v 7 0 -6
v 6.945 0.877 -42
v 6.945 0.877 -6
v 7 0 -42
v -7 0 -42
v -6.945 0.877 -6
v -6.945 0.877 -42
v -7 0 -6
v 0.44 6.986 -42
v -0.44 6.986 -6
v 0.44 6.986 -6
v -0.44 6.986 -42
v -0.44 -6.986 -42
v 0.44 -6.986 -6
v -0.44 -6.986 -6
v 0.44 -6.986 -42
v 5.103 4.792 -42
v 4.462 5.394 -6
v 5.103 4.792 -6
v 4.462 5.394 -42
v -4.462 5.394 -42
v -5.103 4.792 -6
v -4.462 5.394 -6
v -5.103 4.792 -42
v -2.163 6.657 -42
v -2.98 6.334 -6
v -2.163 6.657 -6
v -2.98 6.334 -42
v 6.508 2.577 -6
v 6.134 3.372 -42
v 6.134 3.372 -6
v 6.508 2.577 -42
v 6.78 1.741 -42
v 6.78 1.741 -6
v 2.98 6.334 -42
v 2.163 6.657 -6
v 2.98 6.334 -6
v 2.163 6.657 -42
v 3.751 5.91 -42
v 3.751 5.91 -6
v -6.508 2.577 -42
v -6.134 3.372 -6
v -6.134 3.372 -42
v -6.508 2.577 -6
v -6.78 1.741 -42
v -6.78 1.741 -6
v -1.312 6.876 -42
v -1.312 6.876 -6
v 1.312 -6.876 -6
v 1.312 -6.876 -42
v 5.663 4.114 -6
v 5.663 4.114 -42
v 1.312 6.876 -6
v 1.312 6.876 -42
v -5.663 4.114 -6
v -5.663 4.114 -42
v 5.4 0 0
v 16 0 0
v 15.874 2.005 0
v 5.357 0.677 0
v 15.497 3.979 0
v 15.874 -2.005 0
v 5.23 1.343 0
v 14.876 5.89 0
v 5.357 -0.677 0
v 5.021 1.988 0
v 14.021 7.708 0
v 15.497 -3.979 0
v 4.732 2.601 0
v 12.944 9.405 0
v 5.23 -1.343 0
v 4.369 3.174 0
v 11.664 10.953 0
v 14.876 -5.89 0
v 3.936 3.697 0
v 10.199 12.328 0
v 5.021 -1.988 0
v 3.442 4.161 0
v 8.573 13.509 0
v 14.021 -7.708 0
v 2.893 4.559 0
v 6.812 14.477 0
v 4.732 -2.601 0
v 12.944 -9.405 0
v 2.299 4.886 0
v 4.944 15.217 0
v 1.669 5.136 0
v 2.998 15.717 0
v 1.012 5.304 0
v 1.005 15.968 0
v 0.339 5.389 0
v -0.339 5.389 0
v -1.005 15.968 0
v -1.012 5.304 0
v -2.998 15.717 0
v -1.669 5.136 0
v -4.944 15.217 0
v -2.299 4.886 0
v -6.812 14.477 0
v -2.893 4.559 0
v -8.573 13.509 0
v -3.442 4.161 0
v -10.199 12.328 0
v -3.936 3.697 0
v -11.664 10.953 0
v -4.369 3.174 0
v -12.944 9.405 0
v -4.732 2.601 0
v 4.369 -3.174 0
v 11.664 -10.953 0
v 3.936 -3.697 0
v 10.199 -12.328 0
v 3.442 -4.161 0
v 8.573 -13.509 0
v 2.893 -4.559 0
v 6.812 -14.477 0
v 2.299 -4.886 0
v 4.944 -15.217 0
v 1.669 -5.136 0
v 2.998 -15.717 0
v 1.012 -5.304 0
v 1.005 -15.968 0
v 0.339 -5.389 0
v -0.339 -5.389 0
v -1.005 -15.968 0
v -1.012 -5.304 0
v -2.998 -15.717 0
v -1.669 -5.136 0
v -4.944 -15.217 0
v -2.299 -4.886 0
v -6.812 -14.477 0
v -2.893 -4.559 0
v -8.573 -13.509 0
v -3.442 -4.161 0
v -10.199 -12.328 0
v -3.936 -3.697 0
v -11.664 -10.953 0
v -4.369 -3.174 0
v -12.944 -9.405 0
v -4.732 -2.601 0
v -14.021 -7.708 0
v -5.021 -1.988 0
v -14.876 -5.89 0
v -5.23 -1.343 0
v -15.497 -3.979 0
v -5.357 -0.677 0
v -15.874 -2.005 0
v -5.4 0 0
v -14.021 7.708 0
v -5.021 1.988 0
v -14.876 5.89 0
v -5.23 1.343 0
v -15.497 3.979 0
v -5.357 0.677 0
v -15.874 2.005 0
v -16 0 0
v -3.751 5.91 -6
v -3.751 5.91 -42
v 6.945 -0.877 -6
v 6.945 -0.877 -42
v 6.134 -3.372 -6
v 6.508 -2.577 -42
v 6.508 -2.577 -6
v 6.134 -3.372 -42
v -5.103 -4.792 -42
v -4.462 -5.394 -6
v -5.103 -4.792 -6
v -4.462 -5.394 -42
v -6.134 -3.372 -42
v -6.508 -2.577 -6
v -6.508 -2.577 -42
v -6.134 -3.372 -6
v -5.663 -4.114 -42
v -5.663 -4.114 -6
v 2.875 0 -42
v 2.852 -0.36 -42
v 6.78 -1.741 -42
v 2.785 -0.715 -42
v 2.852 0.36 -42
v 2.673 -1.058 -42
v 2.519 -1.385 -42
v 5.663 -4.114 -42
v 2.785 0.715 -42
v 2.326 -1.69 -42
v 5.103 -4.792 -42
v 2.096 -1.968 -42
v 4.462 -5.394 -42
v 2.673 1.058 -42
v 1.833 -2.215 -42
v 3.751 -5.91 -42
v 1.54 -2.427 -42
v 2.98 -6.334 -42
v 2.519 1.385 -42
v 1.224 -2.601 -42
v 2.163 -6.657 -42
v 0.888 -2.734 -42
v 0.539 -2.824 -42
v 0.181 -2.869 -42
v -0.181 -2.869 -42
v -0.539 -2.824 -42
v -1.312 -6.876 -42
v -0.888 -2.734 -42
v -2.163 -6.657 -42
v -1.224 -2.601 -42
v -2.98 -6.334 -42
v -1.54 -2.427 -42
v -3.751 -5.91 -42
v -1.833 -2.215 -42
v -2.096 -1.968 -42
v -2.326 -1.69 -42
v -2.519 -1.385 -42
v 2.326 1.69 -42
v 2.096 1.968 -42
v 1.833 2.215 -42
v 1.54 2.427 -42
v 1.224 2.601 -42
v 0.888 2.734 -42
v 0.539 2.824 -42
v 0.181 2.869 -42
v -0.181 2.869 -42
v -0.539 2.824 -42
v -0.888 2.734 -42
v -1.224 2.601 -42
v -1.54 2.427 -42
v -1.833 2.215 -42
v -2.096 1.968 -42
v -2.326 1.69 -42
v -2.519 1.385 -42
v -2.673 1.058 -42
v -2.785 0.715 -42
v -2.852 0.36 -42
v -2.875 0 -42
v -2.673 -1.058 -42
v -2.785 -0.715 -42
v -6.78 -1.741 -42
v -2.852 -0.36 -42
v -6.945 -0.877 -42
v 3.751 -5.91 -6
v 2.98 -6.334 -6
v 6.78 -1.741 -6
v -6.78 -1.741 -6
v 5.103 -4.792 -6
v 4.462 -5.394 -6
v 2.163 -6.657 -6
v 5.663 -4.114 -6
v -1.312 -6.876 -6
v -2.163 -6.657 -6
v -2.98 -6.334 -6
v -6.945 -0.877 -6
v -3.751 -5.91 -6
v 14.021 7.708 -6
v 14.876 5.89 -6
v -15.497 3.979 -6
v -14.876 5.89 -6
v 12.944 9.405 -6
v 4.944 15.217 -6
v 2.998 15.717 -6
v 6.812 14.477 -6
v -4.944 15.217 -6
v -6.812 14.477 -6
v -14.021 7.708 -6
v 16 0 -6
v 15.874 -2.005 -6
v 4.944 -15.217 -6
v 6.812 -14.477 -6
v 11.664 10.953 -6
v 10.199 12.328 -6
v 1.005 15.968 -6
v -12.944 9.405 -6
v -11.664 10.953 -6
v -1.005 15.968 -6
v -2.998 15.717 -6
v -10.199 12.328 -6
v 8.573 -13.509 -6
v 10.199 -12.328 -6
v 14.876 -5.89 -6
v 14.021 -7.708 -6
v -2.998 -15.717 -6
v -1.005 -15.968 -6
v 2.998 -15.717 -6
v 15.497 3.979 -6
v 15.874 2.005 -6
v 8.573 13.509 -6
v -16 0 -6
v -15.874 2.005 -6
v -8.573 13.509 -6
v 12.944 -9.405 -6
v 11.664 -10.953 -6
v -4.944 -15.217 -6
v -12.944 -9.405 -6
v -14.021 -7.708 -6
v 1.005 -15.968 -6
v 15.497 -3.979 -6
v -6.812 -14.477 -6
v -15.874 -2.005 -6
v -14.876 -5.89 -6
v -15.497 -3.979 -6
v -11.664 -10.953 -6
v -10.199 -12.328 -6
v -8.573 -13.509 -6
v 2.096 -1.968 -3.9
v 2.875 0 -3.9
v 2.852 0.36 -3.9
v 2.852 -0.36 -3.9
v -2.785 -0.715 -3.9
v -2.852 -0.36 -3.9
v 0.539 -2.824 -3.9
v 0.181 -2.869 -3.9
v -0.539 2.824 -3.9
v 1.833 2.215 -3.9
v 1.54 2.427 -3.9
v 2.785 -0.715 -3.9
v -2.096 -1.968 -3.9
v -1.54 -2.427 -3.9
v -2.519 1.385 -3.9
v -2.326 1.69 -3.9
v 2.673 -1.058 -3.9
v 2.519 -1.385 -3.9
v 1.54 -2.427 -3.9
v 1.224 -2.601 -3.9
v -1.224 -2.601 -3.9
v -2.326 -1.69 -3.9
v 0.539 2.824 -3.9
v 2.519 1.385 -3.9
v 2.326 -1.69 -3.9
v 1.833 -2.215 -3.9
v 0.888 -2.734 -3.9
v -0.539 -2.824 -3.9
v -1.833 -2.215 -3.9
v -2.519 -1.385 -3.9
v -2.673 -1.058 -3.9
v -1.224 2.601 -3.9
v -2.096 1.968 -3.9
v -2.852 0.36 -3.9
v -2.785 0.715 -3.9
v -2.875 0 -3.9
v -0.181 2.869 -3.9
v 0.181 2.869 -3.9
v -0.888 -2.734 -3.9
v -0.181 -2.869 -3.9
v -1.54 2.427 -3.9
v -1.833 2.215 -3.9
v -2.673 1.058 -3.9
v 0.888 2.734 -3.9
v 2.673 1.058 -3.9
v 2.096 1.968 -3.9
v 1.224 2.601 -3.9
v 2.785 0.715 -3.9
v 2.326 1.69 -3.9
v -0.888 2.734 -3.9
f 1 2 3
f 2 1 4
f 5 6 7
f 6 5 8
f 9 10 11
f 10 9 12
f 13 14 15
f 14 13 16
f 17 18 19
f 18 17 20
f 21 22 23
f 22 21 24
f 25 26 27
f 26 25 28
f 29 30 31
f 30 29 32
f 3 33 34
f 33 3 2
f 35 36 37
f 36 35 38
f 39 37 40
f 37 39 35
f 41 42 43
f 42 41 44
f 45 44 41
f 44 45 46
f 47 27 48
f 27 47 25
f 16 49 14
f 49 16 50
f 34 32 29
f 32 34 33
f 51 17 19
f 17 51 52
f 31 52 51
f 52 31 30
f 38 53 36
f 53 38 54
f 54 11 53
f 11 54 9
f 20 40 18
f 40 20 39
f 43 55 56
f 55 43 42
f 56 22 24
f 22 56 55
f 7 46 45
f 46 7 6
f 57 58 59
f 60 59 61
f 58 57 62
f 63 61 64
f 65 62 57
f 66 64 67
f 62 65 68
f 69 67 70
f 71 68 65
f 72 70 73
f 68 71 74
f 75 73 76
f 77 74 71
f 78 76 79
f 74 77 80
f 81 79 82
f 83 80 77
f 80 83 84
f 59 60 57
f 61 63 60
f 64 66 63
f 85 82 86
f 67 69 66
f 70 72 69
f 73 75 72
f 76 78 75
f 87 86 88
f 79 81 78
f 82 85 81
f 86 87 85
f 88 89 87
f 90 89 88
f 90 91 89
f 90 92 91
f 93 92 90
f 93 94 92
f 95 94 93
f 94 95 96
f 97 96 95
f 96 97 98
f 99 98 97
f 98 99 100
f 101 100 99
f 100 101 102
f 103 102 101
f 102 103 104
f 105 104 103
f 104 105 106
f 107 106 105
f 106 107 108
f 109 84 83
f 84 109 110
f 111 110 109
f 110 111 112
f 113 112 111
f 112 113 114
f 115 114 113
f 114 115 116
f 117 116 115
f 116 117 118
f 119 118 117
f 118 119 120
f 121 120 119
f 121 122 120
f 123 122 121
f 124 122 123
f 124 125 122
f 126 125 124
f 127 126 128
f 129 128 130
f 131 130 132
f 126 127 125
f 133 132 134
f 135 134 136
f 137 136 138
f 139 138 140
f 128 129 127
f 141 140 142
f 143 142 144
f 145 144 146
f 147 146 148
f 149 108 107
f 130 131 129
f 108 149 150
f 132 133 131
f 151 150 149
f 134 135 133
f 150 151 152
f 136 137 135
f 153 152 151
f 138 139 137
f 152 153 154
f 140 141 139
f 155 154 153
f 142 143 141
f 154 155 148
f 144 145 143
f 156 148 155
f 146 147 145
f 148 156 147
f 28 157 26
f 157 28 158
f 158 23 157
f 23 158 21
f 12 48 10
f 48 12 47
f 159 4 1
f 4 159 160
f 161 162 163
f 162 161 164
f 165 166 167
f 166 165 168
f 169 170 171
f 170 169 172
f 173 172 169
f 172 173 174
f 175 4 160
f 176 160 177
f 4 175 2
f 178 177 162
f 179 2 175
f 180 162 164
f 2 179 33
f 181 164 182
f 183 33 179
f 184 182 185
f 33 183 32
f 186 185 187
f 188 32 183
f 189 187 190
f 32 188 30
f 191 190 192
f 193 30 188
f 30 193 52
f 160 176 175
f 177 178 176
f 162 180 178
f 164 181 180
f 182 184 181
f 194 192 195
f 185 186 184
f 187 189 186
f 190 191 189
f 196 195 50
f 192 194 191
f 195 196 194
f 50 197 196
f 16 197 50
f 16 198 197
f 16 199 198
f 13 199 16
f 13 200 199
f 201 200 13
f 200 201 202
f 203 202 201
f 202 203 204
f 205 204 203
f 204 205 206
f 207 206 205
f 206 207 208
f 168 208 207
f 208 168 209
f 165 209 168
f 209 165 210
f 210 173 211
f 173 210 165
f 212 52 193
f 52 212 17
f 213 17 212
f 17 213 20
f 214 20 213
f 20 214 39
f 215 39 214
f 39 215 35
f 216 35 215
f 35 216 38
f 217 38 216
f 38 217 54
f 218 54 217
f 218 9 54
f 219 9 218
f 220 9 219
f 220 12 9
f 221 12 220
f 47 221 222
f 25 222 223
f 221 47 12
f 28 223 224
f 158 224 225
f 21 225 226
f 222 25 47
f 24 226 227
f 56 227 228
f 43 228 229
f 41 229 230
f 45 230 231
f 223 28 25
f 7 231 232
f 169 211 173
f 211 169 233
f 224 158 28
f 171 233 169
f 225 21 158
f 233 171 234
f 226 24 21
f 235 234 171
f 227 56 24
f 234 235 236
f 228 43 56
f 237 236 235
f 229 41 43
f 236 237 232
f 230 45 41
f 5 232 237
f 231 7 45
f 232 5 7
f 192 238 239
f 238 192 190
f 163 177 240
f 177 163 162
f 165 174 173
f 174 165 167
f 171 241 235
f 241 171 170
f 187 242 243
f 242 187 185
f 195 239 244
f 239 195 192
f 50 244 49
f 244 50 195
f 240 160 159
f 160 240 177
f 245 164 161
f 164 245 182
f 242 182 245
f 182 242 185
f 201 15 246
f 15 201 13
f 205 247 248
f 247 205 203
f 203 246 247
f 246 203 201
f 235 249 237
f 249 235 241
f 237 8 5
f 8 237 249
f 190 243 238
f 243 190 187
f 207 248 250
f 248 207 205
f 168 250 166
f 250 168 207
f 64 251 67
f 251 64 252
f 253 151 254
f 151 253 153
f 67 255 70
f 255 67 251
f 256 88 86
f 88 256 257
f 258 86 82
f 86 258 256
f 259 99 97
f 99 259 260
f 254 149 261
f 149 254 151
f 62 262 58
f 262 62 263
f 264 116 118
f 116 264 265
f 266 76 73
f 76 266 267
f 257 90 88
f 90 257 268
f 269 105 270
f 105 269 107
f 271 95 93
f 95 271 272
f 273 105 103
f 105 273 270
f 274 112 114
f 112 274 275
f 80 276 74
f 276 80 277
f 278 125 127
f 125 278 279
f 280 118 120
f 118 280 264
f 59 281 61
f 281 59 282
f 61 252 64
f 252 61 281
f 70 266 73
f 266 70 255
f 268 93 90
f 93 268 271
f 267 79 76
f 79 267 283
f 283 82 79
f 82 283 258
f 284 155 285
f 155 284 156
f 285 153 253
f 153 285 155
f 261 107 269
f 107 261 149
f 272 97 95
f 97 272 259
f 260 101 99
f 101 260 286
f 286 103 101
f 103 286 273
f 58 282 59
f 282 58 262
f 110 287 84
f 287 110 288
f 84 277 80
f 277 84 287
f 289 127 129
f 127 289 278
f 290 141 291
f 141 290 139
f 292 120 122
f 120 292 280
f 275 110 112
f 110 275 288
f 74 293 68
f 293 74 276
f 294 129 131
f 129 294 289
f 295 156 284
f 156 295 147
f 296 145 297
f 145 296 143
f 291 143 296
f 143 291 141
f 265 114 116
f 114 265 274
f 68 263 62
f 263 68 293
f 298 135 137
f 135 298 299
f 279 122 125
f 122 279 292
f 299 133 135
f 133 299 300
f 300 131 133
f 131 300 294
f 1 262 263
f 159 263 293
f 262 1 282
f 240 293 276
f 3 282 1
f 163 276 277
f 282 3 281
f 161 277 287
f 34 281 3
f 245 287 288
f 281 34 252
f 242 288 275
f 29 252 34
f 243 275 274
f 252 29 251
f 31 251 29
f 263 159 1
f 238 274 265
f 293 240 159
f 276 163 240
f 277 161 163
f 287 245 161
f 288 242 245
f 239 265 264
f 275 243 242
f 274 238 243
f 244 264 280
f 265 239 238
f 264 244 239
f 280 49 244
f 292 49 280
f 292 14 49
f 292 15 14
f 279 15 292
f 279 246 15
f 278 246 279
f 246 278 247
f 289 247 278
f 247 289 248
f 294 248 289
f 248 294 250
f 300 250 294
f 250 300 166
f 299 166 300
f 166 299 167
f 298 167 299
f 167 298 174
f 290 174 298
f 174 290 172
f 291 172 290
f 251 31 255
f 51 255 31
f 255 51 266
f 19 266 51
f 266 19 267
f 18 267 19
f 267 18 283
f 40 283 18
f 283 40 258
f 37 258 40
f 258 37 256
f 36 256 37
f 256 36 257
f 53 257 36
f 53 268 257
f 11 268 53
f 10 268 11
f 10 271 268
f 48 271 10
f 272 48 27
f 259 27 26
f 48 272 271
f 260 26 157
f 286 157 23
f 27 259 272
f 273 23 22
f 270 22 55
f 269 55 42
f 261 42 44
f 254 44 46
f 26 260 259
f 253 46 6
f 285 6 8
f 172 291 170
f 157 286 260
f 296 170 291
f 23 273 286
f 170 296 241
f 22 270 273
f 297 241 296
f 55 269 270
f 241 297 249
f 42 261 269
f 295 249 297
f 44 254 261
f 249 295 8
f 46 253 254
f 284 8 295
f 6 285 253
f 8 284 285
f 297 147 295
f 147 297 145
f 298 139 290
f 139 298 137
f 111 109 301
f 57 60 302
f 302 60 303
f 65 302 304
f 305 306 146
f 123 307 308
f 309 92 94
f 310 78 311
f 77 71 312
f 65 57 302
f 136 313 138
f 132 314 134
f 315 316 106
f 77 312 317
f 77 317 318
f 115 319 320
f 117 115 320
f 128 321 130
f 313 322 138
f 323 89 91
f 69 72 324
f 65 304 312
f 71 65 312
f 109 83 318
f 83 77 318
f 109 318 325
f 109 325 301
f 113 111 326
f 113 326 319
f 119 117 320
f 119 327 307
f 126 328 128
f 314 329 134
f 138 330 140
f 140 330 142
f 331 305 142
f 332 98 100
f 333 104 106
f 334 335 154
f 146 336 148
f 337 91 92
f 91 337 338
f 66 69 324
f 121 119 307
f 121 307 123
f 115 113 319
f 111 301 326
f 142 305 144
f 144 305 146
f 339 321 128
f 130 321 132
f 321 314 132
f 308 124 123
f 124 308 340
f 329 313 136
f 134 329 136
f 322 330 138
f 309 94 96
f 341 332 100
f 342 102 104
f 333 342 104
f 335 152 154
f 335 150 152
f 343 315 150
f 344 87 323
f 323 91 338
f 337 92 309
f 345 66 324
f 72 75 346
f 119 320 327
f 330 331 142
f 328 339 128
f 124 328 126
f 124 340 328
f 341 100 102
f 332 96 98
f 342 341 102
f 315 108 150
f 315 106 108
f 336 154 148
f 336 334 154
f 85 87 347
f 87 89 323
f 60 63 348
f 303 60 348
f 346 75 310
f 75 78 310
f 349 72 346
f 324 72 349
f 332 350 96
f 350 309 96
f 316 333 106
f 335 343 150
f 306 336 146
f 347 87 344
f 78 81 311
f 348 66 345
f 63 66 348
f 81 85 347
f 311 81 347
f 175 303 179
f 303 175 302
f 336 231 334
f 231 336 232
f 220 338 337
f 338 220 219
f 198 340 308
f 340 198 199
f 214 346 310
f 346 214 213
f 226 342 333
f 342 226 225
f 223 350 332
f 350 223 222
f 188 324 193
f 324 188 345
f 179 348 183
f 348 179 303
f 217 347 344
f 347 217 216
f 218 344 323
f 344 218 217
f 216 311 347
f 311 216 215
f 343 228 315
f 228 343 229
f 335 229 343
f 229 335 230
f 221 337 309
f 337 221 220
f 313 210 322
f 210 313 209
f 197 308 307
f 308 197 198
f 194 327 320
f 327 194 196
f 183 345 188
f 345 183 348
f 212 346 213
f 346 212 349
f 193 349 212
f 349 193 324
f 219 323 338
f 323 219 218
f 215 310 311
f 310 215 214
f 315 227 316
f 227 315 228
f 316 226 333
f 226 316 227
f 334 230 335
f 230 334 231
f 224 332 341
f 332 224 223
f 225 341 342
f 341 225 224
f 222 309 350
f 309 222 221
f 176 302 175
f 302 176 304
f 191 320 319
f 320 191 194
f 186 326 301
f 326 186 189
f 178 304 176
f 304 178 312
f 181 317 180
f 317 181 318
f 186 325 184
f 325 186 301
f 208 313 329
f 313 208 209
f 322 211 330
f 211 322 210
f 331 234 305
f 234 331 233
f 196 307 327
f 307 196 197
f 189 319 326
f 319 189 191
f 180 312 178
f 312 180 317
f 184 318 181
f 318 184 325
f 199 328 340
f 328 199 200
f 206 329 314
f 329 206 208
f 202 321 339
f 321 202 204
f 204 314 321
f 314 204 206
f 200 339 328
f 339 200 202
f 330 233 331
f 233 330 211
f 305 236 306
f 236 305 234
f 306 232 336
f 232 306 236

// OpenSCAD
$fn = 50;


difference() {
	union() {
		translate(v = [0, 0, -42.0000000000]) {
			cylinder(h = 42, r = 7.0000000000);
		}
		translate(v = [0, 0, -6.0000000000]) {
			cylinder(h = 6, r = 16.0000000000);
		}
	}
	union() {
		translate(v = [0, 0, 0]) {
			rotate(a = [0, 0, 0]) {
				difference() {
					union() {
						#translate(v = [0, 0, -42.0000000000]) {
							cylinder(h = 42, r = 2.6000000000);
						}
						#translate(v = [0, 0, -3.9000000000]) {
							cylinder(h = 3.9000000000, r = 7.0000000000, r1 = 2.8750000000, r2 = 5.4000000000);
						}
						#translate(v = [0, 0, -42.0000000000]) {
							cylinder(h = 42, r = 2.8750000000);
						}
						#translate(v = [0, 0, -42.0000000000]) {
							cylinder(h = 42, r = 2.6000000000);
						}
					}
					union();
				}
			}
		}
	}
}
